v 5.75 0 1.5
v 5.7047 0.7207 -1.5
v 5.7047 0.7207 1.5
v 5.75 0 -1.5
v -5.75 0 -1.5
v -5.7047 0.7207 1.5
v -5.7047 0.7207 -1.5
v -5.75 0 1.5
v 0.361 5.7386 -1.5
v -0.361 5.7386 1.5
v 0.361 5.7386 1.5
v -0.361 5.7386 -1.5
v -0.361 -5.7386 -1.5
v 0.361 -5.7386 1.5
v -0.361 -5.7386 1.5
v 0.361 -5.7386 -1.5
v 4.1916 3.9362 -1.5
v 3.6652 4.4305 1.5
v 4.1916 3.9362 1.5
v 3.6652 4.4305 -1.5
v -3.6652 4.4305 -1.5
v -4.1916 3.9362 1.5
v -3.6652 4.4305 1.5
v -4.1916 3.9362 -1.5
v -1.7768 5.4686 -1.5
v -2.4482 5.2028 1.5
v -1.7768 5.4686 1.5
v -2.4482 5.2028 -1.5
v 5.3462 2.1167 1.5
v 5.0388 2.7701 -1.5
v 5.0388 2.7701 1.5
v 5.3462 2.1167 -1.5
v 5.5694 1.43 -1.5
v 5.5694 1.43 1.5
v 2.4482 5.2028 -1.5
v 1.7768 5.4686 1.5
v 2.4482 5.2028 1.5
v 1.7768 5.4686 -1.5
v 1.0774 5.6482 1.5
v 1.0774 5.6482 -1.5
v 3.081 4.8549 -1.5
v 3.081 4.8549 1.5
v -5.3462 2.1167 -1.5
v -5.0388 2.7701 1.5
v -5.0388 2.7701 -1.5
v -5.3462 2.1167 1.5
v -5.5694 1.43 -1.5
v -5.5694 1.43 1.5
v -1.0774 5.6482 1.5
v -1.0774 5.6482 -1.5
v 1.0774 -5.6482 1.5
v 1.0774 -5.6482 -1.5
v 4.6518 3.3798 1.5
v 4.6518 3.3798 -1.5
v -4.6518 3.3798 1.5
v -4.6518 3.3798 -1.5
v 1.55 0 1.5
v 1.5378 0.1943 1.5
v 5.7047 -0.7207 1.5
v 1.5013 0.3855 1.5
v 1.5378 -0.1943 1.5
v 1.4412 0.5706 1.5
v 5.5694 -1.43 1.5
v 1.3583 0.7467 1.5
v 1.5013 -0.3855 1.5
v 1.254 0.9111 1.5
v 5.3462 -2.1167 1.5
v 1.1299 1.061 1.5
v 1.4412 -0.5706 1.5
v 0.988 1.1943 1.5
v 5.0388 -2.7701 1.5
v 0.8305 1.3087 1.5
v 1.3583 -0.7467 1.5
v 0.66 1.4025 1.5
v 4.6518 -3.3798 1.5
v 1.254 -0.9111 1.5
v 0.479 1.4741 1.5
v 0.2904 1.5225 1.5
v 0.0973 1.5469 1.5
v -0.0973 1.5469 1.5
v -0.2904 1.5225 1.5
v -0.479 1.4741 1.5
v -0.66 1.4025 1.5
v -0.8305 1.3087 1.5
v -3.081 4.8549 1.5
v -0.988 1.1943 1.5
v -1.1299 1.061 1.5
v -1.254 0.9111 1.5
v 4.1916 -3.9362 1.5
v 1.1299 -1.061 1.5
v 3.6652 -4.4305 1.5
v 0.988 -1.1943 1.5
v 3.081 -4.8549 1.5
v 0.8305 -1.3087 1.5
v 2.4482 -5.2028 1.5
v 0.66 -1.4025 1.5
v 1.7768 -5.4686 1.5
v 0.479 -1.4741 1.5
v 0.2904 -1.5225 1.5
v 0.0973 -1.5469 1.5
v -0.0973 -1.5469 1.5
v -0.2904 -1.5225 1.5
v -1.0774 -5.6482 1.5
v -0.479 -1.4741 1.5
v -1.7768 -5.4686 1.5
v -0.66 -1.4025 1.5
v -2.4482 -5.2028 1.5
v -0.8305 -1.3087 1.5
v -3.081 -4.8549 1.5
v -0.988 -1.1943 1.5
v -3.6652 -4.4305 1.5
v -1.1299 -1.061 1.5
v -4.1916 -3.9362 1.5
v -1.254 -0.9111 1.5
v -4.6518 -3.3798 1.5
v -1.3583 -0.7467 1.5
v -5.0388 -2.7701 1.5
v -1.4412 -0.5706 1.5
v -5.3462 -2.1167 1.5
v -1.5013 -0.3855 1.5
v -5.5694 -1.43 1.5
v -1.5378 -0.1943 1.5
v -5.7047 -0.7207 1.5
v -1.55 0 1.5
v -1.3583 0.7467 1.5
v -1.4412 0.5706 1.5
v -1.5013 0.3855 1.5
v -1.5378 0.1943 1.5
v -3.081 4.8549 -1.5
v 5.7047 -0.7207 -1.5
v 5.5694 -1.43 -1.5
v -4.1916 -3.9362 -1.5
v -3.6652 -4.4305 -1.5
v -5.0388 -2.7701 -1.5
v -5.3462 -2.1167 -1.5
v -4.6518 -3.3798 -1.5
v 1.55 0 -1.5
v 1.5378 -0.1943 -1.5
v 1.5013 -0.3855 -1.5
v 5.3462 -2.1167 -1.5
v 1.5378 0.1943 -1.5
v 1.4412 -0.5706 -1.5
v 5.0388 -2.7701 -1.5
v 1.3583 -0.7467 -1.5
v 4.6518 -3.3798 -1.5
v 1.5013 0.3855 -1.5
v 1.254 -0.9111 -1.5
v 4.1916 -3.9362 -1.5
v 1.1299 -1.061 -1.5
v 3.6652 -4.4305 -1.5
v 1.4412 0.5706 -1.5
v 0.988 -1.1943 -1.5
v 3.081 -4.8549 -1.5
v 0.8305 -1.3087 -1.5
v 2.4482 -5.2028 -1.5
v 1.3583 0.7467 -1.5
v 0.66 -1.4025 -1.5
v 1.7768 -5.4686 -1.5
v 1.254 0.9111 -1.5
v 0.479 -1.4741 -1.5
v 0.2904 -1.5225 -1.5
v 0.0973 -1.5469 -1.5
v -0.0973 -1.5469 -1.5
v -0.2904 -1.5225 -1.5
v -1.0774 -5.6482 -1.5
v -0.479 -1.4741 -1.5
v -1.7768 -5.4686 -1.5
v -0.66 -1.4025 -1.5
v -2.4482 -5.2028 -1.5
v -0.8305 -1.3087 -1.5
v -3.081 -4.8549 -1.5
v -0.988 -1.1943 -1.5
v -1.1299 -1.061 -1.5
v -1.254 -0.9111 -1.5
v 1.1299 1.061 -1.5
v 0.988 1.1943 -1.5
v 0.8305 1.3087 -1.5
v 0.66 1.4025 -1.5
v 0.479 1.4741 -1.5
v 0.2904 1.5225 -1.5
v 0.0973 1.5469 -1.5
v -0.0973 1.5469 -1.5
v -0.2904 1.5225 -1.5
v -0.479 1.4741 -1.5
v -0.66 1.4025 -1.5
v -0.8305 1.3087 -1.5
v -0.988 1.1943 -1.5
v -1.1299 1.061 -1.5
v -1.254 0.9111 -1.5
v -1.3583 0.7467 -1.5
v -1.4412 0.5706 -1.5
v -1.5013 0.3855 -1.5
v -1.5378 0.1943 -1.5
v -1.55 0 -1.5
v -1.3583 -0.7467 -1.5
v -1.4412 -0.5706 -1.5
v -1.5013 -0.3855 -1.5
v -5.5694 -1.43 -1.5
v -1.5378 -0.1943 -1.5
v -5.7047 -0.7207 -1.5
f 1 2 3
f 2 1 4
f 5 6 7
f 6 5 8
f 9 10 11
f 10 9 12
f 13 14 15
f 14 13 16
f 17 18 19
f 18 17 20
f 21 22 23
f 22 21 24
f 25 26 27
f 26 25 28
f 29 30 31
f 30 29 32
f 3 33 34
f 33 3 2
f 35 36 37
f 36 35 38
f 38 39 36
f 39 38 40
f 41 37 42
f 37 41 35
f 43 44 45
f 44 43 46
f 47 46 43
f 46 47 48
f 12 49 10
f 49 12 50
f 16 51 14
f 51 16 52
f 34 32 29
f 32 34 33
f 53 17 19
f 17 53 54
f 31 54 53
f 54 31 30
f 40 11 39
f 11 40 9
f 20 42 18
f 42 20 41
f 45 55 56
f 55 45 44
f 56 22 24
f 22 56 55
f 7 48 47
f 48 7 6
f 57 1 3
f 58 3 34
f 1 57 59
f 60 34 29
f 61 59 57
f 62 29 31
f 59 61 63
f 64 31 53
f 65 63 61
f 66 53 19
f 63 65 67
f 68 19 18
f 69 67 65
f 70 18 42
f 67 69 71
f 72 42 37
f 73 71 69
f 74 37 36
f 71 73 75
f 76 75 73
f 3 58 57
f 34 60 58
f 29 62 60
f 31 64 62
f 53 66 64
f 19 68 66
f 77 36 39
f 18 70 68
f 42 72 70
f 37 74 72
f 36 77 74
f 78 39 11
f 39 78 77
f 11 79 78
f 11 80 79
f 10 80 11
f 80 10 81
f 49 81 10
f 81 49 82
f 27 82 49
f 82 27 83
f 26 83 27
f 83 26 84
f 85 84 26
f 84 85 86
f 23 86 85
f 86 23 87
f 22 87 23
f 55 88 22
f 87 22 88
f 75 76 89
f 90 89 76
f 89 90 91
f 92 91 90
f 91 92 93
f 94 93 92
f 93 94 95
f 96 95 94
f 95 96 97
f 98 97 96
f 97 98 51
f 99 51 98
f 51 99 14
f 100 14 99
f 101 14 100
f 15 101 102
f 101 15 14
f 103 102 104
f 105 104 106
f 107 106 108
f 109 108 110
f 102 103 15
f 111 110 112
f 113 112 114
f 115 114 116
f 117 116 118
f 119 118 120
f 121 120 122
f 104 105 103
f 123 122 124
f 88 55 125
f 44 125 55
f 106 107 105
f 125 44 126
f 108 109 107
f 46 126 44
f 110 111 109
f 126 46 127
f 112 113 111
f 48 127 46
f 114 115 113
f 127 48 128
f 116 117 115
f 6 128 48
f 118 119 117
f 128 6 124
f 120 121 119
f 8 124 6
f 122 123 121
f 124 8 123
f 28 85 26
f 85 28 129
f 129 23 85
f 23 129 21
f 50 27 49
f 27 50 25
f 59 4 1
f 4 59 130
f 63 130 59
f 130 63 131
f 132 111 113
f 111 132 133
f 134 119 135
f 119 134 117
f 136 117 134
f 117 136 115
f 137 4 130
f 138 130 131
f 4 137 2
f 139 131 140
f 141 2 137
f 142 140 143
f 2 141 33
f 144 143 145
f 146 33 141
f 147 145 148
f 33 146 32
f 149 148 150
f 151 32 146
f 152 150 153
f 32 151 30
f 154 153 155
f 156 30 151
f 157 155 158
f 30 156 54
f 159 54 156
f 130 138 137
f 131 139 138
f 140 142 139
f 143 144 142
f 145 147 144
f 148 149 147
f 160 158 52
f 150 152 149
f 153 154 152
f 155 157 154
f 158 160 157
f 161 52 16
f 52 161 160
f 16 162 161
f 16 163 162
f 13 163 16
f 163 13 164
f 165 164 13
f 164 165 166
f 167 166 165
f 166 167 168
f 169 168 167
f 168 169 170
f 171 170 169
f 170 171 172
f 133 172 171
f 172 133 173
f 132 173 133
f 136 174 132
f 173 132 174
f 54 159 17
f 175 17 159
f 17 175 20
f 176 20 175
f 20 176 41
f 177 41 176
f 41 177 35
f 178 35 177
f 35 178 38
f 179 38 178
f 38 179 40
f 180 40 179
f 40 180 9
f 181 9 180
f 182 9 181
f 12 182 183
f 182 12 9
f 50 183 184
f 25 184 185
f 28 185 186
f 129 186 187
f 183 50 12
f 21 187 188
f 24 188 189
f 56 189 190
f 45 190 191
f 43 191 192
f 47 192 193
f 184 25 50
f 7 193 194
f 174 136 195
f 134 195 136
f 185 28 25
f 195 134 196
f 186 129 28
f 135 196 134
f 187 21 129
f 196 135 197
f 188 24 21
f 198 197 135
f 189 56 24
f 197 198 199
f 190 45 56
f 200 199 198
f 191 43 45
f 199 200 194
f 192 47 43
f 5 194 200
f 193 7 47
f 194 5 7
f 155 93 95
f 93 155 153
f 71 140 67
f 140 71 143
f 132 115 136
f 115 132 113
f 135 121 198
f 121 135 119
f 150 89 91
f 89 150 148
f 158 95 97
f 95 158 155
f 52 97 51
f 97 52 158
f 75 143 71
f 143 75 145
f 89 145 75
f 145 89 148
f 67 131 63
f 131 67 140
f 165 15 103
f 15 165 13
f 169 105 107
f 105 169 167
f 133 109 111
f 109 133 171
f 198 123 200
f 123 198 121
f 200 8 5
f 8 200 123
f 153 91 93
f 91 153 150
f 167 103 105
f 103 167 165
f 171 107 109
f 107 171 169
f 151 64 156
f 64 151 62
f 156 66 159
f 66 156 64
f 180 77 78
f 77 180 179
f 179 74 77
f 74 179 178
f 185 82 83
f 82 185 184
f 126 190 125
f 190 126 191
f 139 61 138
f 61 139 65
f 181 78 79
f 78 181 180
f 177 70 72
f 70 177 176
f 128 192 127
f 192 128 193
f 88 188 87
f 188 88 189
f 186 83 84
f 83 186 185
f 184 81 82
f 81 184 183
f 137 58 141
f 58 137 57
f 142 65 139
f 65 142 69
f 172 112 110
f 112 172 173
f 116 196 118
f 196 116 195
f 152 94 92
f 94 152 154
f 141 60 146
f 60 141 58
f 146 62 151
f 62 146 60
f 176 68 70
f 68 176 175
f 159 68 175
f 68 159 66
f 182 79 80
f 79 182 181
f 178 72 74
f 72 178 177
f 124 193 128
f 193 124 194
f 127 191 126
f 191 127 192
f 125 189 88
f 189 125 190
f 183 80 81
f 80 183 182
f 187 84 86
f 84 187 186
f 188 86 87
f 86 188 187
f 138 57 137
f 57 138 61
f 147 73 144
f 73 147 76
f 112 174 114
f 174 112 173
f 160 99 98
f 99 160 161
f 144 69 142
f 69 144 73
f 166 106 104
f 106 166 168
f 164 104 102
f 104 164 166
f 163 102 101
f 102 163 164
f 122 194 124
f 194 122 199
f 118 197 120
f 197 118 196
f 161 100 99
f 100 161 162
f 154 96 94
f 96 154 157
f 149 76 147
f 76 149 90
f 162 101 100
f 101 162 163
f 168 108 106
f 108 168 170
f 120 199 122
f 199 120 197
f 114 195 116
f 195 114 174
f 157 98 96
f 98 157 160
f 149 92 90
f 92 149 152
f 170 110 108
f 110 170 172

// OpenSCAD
$fn = 50;


difference() {
	union() {
		translate(v = [0, 0, -1.5000000000]) {
			cylinder(h = 3, r = 5.7500000000);
		}
	}
	union() {
		translate(v = [0, 0, -100.0000000000]) {
			cylinder(h = 200, r = 1.5500000000);
		}
	}
}
